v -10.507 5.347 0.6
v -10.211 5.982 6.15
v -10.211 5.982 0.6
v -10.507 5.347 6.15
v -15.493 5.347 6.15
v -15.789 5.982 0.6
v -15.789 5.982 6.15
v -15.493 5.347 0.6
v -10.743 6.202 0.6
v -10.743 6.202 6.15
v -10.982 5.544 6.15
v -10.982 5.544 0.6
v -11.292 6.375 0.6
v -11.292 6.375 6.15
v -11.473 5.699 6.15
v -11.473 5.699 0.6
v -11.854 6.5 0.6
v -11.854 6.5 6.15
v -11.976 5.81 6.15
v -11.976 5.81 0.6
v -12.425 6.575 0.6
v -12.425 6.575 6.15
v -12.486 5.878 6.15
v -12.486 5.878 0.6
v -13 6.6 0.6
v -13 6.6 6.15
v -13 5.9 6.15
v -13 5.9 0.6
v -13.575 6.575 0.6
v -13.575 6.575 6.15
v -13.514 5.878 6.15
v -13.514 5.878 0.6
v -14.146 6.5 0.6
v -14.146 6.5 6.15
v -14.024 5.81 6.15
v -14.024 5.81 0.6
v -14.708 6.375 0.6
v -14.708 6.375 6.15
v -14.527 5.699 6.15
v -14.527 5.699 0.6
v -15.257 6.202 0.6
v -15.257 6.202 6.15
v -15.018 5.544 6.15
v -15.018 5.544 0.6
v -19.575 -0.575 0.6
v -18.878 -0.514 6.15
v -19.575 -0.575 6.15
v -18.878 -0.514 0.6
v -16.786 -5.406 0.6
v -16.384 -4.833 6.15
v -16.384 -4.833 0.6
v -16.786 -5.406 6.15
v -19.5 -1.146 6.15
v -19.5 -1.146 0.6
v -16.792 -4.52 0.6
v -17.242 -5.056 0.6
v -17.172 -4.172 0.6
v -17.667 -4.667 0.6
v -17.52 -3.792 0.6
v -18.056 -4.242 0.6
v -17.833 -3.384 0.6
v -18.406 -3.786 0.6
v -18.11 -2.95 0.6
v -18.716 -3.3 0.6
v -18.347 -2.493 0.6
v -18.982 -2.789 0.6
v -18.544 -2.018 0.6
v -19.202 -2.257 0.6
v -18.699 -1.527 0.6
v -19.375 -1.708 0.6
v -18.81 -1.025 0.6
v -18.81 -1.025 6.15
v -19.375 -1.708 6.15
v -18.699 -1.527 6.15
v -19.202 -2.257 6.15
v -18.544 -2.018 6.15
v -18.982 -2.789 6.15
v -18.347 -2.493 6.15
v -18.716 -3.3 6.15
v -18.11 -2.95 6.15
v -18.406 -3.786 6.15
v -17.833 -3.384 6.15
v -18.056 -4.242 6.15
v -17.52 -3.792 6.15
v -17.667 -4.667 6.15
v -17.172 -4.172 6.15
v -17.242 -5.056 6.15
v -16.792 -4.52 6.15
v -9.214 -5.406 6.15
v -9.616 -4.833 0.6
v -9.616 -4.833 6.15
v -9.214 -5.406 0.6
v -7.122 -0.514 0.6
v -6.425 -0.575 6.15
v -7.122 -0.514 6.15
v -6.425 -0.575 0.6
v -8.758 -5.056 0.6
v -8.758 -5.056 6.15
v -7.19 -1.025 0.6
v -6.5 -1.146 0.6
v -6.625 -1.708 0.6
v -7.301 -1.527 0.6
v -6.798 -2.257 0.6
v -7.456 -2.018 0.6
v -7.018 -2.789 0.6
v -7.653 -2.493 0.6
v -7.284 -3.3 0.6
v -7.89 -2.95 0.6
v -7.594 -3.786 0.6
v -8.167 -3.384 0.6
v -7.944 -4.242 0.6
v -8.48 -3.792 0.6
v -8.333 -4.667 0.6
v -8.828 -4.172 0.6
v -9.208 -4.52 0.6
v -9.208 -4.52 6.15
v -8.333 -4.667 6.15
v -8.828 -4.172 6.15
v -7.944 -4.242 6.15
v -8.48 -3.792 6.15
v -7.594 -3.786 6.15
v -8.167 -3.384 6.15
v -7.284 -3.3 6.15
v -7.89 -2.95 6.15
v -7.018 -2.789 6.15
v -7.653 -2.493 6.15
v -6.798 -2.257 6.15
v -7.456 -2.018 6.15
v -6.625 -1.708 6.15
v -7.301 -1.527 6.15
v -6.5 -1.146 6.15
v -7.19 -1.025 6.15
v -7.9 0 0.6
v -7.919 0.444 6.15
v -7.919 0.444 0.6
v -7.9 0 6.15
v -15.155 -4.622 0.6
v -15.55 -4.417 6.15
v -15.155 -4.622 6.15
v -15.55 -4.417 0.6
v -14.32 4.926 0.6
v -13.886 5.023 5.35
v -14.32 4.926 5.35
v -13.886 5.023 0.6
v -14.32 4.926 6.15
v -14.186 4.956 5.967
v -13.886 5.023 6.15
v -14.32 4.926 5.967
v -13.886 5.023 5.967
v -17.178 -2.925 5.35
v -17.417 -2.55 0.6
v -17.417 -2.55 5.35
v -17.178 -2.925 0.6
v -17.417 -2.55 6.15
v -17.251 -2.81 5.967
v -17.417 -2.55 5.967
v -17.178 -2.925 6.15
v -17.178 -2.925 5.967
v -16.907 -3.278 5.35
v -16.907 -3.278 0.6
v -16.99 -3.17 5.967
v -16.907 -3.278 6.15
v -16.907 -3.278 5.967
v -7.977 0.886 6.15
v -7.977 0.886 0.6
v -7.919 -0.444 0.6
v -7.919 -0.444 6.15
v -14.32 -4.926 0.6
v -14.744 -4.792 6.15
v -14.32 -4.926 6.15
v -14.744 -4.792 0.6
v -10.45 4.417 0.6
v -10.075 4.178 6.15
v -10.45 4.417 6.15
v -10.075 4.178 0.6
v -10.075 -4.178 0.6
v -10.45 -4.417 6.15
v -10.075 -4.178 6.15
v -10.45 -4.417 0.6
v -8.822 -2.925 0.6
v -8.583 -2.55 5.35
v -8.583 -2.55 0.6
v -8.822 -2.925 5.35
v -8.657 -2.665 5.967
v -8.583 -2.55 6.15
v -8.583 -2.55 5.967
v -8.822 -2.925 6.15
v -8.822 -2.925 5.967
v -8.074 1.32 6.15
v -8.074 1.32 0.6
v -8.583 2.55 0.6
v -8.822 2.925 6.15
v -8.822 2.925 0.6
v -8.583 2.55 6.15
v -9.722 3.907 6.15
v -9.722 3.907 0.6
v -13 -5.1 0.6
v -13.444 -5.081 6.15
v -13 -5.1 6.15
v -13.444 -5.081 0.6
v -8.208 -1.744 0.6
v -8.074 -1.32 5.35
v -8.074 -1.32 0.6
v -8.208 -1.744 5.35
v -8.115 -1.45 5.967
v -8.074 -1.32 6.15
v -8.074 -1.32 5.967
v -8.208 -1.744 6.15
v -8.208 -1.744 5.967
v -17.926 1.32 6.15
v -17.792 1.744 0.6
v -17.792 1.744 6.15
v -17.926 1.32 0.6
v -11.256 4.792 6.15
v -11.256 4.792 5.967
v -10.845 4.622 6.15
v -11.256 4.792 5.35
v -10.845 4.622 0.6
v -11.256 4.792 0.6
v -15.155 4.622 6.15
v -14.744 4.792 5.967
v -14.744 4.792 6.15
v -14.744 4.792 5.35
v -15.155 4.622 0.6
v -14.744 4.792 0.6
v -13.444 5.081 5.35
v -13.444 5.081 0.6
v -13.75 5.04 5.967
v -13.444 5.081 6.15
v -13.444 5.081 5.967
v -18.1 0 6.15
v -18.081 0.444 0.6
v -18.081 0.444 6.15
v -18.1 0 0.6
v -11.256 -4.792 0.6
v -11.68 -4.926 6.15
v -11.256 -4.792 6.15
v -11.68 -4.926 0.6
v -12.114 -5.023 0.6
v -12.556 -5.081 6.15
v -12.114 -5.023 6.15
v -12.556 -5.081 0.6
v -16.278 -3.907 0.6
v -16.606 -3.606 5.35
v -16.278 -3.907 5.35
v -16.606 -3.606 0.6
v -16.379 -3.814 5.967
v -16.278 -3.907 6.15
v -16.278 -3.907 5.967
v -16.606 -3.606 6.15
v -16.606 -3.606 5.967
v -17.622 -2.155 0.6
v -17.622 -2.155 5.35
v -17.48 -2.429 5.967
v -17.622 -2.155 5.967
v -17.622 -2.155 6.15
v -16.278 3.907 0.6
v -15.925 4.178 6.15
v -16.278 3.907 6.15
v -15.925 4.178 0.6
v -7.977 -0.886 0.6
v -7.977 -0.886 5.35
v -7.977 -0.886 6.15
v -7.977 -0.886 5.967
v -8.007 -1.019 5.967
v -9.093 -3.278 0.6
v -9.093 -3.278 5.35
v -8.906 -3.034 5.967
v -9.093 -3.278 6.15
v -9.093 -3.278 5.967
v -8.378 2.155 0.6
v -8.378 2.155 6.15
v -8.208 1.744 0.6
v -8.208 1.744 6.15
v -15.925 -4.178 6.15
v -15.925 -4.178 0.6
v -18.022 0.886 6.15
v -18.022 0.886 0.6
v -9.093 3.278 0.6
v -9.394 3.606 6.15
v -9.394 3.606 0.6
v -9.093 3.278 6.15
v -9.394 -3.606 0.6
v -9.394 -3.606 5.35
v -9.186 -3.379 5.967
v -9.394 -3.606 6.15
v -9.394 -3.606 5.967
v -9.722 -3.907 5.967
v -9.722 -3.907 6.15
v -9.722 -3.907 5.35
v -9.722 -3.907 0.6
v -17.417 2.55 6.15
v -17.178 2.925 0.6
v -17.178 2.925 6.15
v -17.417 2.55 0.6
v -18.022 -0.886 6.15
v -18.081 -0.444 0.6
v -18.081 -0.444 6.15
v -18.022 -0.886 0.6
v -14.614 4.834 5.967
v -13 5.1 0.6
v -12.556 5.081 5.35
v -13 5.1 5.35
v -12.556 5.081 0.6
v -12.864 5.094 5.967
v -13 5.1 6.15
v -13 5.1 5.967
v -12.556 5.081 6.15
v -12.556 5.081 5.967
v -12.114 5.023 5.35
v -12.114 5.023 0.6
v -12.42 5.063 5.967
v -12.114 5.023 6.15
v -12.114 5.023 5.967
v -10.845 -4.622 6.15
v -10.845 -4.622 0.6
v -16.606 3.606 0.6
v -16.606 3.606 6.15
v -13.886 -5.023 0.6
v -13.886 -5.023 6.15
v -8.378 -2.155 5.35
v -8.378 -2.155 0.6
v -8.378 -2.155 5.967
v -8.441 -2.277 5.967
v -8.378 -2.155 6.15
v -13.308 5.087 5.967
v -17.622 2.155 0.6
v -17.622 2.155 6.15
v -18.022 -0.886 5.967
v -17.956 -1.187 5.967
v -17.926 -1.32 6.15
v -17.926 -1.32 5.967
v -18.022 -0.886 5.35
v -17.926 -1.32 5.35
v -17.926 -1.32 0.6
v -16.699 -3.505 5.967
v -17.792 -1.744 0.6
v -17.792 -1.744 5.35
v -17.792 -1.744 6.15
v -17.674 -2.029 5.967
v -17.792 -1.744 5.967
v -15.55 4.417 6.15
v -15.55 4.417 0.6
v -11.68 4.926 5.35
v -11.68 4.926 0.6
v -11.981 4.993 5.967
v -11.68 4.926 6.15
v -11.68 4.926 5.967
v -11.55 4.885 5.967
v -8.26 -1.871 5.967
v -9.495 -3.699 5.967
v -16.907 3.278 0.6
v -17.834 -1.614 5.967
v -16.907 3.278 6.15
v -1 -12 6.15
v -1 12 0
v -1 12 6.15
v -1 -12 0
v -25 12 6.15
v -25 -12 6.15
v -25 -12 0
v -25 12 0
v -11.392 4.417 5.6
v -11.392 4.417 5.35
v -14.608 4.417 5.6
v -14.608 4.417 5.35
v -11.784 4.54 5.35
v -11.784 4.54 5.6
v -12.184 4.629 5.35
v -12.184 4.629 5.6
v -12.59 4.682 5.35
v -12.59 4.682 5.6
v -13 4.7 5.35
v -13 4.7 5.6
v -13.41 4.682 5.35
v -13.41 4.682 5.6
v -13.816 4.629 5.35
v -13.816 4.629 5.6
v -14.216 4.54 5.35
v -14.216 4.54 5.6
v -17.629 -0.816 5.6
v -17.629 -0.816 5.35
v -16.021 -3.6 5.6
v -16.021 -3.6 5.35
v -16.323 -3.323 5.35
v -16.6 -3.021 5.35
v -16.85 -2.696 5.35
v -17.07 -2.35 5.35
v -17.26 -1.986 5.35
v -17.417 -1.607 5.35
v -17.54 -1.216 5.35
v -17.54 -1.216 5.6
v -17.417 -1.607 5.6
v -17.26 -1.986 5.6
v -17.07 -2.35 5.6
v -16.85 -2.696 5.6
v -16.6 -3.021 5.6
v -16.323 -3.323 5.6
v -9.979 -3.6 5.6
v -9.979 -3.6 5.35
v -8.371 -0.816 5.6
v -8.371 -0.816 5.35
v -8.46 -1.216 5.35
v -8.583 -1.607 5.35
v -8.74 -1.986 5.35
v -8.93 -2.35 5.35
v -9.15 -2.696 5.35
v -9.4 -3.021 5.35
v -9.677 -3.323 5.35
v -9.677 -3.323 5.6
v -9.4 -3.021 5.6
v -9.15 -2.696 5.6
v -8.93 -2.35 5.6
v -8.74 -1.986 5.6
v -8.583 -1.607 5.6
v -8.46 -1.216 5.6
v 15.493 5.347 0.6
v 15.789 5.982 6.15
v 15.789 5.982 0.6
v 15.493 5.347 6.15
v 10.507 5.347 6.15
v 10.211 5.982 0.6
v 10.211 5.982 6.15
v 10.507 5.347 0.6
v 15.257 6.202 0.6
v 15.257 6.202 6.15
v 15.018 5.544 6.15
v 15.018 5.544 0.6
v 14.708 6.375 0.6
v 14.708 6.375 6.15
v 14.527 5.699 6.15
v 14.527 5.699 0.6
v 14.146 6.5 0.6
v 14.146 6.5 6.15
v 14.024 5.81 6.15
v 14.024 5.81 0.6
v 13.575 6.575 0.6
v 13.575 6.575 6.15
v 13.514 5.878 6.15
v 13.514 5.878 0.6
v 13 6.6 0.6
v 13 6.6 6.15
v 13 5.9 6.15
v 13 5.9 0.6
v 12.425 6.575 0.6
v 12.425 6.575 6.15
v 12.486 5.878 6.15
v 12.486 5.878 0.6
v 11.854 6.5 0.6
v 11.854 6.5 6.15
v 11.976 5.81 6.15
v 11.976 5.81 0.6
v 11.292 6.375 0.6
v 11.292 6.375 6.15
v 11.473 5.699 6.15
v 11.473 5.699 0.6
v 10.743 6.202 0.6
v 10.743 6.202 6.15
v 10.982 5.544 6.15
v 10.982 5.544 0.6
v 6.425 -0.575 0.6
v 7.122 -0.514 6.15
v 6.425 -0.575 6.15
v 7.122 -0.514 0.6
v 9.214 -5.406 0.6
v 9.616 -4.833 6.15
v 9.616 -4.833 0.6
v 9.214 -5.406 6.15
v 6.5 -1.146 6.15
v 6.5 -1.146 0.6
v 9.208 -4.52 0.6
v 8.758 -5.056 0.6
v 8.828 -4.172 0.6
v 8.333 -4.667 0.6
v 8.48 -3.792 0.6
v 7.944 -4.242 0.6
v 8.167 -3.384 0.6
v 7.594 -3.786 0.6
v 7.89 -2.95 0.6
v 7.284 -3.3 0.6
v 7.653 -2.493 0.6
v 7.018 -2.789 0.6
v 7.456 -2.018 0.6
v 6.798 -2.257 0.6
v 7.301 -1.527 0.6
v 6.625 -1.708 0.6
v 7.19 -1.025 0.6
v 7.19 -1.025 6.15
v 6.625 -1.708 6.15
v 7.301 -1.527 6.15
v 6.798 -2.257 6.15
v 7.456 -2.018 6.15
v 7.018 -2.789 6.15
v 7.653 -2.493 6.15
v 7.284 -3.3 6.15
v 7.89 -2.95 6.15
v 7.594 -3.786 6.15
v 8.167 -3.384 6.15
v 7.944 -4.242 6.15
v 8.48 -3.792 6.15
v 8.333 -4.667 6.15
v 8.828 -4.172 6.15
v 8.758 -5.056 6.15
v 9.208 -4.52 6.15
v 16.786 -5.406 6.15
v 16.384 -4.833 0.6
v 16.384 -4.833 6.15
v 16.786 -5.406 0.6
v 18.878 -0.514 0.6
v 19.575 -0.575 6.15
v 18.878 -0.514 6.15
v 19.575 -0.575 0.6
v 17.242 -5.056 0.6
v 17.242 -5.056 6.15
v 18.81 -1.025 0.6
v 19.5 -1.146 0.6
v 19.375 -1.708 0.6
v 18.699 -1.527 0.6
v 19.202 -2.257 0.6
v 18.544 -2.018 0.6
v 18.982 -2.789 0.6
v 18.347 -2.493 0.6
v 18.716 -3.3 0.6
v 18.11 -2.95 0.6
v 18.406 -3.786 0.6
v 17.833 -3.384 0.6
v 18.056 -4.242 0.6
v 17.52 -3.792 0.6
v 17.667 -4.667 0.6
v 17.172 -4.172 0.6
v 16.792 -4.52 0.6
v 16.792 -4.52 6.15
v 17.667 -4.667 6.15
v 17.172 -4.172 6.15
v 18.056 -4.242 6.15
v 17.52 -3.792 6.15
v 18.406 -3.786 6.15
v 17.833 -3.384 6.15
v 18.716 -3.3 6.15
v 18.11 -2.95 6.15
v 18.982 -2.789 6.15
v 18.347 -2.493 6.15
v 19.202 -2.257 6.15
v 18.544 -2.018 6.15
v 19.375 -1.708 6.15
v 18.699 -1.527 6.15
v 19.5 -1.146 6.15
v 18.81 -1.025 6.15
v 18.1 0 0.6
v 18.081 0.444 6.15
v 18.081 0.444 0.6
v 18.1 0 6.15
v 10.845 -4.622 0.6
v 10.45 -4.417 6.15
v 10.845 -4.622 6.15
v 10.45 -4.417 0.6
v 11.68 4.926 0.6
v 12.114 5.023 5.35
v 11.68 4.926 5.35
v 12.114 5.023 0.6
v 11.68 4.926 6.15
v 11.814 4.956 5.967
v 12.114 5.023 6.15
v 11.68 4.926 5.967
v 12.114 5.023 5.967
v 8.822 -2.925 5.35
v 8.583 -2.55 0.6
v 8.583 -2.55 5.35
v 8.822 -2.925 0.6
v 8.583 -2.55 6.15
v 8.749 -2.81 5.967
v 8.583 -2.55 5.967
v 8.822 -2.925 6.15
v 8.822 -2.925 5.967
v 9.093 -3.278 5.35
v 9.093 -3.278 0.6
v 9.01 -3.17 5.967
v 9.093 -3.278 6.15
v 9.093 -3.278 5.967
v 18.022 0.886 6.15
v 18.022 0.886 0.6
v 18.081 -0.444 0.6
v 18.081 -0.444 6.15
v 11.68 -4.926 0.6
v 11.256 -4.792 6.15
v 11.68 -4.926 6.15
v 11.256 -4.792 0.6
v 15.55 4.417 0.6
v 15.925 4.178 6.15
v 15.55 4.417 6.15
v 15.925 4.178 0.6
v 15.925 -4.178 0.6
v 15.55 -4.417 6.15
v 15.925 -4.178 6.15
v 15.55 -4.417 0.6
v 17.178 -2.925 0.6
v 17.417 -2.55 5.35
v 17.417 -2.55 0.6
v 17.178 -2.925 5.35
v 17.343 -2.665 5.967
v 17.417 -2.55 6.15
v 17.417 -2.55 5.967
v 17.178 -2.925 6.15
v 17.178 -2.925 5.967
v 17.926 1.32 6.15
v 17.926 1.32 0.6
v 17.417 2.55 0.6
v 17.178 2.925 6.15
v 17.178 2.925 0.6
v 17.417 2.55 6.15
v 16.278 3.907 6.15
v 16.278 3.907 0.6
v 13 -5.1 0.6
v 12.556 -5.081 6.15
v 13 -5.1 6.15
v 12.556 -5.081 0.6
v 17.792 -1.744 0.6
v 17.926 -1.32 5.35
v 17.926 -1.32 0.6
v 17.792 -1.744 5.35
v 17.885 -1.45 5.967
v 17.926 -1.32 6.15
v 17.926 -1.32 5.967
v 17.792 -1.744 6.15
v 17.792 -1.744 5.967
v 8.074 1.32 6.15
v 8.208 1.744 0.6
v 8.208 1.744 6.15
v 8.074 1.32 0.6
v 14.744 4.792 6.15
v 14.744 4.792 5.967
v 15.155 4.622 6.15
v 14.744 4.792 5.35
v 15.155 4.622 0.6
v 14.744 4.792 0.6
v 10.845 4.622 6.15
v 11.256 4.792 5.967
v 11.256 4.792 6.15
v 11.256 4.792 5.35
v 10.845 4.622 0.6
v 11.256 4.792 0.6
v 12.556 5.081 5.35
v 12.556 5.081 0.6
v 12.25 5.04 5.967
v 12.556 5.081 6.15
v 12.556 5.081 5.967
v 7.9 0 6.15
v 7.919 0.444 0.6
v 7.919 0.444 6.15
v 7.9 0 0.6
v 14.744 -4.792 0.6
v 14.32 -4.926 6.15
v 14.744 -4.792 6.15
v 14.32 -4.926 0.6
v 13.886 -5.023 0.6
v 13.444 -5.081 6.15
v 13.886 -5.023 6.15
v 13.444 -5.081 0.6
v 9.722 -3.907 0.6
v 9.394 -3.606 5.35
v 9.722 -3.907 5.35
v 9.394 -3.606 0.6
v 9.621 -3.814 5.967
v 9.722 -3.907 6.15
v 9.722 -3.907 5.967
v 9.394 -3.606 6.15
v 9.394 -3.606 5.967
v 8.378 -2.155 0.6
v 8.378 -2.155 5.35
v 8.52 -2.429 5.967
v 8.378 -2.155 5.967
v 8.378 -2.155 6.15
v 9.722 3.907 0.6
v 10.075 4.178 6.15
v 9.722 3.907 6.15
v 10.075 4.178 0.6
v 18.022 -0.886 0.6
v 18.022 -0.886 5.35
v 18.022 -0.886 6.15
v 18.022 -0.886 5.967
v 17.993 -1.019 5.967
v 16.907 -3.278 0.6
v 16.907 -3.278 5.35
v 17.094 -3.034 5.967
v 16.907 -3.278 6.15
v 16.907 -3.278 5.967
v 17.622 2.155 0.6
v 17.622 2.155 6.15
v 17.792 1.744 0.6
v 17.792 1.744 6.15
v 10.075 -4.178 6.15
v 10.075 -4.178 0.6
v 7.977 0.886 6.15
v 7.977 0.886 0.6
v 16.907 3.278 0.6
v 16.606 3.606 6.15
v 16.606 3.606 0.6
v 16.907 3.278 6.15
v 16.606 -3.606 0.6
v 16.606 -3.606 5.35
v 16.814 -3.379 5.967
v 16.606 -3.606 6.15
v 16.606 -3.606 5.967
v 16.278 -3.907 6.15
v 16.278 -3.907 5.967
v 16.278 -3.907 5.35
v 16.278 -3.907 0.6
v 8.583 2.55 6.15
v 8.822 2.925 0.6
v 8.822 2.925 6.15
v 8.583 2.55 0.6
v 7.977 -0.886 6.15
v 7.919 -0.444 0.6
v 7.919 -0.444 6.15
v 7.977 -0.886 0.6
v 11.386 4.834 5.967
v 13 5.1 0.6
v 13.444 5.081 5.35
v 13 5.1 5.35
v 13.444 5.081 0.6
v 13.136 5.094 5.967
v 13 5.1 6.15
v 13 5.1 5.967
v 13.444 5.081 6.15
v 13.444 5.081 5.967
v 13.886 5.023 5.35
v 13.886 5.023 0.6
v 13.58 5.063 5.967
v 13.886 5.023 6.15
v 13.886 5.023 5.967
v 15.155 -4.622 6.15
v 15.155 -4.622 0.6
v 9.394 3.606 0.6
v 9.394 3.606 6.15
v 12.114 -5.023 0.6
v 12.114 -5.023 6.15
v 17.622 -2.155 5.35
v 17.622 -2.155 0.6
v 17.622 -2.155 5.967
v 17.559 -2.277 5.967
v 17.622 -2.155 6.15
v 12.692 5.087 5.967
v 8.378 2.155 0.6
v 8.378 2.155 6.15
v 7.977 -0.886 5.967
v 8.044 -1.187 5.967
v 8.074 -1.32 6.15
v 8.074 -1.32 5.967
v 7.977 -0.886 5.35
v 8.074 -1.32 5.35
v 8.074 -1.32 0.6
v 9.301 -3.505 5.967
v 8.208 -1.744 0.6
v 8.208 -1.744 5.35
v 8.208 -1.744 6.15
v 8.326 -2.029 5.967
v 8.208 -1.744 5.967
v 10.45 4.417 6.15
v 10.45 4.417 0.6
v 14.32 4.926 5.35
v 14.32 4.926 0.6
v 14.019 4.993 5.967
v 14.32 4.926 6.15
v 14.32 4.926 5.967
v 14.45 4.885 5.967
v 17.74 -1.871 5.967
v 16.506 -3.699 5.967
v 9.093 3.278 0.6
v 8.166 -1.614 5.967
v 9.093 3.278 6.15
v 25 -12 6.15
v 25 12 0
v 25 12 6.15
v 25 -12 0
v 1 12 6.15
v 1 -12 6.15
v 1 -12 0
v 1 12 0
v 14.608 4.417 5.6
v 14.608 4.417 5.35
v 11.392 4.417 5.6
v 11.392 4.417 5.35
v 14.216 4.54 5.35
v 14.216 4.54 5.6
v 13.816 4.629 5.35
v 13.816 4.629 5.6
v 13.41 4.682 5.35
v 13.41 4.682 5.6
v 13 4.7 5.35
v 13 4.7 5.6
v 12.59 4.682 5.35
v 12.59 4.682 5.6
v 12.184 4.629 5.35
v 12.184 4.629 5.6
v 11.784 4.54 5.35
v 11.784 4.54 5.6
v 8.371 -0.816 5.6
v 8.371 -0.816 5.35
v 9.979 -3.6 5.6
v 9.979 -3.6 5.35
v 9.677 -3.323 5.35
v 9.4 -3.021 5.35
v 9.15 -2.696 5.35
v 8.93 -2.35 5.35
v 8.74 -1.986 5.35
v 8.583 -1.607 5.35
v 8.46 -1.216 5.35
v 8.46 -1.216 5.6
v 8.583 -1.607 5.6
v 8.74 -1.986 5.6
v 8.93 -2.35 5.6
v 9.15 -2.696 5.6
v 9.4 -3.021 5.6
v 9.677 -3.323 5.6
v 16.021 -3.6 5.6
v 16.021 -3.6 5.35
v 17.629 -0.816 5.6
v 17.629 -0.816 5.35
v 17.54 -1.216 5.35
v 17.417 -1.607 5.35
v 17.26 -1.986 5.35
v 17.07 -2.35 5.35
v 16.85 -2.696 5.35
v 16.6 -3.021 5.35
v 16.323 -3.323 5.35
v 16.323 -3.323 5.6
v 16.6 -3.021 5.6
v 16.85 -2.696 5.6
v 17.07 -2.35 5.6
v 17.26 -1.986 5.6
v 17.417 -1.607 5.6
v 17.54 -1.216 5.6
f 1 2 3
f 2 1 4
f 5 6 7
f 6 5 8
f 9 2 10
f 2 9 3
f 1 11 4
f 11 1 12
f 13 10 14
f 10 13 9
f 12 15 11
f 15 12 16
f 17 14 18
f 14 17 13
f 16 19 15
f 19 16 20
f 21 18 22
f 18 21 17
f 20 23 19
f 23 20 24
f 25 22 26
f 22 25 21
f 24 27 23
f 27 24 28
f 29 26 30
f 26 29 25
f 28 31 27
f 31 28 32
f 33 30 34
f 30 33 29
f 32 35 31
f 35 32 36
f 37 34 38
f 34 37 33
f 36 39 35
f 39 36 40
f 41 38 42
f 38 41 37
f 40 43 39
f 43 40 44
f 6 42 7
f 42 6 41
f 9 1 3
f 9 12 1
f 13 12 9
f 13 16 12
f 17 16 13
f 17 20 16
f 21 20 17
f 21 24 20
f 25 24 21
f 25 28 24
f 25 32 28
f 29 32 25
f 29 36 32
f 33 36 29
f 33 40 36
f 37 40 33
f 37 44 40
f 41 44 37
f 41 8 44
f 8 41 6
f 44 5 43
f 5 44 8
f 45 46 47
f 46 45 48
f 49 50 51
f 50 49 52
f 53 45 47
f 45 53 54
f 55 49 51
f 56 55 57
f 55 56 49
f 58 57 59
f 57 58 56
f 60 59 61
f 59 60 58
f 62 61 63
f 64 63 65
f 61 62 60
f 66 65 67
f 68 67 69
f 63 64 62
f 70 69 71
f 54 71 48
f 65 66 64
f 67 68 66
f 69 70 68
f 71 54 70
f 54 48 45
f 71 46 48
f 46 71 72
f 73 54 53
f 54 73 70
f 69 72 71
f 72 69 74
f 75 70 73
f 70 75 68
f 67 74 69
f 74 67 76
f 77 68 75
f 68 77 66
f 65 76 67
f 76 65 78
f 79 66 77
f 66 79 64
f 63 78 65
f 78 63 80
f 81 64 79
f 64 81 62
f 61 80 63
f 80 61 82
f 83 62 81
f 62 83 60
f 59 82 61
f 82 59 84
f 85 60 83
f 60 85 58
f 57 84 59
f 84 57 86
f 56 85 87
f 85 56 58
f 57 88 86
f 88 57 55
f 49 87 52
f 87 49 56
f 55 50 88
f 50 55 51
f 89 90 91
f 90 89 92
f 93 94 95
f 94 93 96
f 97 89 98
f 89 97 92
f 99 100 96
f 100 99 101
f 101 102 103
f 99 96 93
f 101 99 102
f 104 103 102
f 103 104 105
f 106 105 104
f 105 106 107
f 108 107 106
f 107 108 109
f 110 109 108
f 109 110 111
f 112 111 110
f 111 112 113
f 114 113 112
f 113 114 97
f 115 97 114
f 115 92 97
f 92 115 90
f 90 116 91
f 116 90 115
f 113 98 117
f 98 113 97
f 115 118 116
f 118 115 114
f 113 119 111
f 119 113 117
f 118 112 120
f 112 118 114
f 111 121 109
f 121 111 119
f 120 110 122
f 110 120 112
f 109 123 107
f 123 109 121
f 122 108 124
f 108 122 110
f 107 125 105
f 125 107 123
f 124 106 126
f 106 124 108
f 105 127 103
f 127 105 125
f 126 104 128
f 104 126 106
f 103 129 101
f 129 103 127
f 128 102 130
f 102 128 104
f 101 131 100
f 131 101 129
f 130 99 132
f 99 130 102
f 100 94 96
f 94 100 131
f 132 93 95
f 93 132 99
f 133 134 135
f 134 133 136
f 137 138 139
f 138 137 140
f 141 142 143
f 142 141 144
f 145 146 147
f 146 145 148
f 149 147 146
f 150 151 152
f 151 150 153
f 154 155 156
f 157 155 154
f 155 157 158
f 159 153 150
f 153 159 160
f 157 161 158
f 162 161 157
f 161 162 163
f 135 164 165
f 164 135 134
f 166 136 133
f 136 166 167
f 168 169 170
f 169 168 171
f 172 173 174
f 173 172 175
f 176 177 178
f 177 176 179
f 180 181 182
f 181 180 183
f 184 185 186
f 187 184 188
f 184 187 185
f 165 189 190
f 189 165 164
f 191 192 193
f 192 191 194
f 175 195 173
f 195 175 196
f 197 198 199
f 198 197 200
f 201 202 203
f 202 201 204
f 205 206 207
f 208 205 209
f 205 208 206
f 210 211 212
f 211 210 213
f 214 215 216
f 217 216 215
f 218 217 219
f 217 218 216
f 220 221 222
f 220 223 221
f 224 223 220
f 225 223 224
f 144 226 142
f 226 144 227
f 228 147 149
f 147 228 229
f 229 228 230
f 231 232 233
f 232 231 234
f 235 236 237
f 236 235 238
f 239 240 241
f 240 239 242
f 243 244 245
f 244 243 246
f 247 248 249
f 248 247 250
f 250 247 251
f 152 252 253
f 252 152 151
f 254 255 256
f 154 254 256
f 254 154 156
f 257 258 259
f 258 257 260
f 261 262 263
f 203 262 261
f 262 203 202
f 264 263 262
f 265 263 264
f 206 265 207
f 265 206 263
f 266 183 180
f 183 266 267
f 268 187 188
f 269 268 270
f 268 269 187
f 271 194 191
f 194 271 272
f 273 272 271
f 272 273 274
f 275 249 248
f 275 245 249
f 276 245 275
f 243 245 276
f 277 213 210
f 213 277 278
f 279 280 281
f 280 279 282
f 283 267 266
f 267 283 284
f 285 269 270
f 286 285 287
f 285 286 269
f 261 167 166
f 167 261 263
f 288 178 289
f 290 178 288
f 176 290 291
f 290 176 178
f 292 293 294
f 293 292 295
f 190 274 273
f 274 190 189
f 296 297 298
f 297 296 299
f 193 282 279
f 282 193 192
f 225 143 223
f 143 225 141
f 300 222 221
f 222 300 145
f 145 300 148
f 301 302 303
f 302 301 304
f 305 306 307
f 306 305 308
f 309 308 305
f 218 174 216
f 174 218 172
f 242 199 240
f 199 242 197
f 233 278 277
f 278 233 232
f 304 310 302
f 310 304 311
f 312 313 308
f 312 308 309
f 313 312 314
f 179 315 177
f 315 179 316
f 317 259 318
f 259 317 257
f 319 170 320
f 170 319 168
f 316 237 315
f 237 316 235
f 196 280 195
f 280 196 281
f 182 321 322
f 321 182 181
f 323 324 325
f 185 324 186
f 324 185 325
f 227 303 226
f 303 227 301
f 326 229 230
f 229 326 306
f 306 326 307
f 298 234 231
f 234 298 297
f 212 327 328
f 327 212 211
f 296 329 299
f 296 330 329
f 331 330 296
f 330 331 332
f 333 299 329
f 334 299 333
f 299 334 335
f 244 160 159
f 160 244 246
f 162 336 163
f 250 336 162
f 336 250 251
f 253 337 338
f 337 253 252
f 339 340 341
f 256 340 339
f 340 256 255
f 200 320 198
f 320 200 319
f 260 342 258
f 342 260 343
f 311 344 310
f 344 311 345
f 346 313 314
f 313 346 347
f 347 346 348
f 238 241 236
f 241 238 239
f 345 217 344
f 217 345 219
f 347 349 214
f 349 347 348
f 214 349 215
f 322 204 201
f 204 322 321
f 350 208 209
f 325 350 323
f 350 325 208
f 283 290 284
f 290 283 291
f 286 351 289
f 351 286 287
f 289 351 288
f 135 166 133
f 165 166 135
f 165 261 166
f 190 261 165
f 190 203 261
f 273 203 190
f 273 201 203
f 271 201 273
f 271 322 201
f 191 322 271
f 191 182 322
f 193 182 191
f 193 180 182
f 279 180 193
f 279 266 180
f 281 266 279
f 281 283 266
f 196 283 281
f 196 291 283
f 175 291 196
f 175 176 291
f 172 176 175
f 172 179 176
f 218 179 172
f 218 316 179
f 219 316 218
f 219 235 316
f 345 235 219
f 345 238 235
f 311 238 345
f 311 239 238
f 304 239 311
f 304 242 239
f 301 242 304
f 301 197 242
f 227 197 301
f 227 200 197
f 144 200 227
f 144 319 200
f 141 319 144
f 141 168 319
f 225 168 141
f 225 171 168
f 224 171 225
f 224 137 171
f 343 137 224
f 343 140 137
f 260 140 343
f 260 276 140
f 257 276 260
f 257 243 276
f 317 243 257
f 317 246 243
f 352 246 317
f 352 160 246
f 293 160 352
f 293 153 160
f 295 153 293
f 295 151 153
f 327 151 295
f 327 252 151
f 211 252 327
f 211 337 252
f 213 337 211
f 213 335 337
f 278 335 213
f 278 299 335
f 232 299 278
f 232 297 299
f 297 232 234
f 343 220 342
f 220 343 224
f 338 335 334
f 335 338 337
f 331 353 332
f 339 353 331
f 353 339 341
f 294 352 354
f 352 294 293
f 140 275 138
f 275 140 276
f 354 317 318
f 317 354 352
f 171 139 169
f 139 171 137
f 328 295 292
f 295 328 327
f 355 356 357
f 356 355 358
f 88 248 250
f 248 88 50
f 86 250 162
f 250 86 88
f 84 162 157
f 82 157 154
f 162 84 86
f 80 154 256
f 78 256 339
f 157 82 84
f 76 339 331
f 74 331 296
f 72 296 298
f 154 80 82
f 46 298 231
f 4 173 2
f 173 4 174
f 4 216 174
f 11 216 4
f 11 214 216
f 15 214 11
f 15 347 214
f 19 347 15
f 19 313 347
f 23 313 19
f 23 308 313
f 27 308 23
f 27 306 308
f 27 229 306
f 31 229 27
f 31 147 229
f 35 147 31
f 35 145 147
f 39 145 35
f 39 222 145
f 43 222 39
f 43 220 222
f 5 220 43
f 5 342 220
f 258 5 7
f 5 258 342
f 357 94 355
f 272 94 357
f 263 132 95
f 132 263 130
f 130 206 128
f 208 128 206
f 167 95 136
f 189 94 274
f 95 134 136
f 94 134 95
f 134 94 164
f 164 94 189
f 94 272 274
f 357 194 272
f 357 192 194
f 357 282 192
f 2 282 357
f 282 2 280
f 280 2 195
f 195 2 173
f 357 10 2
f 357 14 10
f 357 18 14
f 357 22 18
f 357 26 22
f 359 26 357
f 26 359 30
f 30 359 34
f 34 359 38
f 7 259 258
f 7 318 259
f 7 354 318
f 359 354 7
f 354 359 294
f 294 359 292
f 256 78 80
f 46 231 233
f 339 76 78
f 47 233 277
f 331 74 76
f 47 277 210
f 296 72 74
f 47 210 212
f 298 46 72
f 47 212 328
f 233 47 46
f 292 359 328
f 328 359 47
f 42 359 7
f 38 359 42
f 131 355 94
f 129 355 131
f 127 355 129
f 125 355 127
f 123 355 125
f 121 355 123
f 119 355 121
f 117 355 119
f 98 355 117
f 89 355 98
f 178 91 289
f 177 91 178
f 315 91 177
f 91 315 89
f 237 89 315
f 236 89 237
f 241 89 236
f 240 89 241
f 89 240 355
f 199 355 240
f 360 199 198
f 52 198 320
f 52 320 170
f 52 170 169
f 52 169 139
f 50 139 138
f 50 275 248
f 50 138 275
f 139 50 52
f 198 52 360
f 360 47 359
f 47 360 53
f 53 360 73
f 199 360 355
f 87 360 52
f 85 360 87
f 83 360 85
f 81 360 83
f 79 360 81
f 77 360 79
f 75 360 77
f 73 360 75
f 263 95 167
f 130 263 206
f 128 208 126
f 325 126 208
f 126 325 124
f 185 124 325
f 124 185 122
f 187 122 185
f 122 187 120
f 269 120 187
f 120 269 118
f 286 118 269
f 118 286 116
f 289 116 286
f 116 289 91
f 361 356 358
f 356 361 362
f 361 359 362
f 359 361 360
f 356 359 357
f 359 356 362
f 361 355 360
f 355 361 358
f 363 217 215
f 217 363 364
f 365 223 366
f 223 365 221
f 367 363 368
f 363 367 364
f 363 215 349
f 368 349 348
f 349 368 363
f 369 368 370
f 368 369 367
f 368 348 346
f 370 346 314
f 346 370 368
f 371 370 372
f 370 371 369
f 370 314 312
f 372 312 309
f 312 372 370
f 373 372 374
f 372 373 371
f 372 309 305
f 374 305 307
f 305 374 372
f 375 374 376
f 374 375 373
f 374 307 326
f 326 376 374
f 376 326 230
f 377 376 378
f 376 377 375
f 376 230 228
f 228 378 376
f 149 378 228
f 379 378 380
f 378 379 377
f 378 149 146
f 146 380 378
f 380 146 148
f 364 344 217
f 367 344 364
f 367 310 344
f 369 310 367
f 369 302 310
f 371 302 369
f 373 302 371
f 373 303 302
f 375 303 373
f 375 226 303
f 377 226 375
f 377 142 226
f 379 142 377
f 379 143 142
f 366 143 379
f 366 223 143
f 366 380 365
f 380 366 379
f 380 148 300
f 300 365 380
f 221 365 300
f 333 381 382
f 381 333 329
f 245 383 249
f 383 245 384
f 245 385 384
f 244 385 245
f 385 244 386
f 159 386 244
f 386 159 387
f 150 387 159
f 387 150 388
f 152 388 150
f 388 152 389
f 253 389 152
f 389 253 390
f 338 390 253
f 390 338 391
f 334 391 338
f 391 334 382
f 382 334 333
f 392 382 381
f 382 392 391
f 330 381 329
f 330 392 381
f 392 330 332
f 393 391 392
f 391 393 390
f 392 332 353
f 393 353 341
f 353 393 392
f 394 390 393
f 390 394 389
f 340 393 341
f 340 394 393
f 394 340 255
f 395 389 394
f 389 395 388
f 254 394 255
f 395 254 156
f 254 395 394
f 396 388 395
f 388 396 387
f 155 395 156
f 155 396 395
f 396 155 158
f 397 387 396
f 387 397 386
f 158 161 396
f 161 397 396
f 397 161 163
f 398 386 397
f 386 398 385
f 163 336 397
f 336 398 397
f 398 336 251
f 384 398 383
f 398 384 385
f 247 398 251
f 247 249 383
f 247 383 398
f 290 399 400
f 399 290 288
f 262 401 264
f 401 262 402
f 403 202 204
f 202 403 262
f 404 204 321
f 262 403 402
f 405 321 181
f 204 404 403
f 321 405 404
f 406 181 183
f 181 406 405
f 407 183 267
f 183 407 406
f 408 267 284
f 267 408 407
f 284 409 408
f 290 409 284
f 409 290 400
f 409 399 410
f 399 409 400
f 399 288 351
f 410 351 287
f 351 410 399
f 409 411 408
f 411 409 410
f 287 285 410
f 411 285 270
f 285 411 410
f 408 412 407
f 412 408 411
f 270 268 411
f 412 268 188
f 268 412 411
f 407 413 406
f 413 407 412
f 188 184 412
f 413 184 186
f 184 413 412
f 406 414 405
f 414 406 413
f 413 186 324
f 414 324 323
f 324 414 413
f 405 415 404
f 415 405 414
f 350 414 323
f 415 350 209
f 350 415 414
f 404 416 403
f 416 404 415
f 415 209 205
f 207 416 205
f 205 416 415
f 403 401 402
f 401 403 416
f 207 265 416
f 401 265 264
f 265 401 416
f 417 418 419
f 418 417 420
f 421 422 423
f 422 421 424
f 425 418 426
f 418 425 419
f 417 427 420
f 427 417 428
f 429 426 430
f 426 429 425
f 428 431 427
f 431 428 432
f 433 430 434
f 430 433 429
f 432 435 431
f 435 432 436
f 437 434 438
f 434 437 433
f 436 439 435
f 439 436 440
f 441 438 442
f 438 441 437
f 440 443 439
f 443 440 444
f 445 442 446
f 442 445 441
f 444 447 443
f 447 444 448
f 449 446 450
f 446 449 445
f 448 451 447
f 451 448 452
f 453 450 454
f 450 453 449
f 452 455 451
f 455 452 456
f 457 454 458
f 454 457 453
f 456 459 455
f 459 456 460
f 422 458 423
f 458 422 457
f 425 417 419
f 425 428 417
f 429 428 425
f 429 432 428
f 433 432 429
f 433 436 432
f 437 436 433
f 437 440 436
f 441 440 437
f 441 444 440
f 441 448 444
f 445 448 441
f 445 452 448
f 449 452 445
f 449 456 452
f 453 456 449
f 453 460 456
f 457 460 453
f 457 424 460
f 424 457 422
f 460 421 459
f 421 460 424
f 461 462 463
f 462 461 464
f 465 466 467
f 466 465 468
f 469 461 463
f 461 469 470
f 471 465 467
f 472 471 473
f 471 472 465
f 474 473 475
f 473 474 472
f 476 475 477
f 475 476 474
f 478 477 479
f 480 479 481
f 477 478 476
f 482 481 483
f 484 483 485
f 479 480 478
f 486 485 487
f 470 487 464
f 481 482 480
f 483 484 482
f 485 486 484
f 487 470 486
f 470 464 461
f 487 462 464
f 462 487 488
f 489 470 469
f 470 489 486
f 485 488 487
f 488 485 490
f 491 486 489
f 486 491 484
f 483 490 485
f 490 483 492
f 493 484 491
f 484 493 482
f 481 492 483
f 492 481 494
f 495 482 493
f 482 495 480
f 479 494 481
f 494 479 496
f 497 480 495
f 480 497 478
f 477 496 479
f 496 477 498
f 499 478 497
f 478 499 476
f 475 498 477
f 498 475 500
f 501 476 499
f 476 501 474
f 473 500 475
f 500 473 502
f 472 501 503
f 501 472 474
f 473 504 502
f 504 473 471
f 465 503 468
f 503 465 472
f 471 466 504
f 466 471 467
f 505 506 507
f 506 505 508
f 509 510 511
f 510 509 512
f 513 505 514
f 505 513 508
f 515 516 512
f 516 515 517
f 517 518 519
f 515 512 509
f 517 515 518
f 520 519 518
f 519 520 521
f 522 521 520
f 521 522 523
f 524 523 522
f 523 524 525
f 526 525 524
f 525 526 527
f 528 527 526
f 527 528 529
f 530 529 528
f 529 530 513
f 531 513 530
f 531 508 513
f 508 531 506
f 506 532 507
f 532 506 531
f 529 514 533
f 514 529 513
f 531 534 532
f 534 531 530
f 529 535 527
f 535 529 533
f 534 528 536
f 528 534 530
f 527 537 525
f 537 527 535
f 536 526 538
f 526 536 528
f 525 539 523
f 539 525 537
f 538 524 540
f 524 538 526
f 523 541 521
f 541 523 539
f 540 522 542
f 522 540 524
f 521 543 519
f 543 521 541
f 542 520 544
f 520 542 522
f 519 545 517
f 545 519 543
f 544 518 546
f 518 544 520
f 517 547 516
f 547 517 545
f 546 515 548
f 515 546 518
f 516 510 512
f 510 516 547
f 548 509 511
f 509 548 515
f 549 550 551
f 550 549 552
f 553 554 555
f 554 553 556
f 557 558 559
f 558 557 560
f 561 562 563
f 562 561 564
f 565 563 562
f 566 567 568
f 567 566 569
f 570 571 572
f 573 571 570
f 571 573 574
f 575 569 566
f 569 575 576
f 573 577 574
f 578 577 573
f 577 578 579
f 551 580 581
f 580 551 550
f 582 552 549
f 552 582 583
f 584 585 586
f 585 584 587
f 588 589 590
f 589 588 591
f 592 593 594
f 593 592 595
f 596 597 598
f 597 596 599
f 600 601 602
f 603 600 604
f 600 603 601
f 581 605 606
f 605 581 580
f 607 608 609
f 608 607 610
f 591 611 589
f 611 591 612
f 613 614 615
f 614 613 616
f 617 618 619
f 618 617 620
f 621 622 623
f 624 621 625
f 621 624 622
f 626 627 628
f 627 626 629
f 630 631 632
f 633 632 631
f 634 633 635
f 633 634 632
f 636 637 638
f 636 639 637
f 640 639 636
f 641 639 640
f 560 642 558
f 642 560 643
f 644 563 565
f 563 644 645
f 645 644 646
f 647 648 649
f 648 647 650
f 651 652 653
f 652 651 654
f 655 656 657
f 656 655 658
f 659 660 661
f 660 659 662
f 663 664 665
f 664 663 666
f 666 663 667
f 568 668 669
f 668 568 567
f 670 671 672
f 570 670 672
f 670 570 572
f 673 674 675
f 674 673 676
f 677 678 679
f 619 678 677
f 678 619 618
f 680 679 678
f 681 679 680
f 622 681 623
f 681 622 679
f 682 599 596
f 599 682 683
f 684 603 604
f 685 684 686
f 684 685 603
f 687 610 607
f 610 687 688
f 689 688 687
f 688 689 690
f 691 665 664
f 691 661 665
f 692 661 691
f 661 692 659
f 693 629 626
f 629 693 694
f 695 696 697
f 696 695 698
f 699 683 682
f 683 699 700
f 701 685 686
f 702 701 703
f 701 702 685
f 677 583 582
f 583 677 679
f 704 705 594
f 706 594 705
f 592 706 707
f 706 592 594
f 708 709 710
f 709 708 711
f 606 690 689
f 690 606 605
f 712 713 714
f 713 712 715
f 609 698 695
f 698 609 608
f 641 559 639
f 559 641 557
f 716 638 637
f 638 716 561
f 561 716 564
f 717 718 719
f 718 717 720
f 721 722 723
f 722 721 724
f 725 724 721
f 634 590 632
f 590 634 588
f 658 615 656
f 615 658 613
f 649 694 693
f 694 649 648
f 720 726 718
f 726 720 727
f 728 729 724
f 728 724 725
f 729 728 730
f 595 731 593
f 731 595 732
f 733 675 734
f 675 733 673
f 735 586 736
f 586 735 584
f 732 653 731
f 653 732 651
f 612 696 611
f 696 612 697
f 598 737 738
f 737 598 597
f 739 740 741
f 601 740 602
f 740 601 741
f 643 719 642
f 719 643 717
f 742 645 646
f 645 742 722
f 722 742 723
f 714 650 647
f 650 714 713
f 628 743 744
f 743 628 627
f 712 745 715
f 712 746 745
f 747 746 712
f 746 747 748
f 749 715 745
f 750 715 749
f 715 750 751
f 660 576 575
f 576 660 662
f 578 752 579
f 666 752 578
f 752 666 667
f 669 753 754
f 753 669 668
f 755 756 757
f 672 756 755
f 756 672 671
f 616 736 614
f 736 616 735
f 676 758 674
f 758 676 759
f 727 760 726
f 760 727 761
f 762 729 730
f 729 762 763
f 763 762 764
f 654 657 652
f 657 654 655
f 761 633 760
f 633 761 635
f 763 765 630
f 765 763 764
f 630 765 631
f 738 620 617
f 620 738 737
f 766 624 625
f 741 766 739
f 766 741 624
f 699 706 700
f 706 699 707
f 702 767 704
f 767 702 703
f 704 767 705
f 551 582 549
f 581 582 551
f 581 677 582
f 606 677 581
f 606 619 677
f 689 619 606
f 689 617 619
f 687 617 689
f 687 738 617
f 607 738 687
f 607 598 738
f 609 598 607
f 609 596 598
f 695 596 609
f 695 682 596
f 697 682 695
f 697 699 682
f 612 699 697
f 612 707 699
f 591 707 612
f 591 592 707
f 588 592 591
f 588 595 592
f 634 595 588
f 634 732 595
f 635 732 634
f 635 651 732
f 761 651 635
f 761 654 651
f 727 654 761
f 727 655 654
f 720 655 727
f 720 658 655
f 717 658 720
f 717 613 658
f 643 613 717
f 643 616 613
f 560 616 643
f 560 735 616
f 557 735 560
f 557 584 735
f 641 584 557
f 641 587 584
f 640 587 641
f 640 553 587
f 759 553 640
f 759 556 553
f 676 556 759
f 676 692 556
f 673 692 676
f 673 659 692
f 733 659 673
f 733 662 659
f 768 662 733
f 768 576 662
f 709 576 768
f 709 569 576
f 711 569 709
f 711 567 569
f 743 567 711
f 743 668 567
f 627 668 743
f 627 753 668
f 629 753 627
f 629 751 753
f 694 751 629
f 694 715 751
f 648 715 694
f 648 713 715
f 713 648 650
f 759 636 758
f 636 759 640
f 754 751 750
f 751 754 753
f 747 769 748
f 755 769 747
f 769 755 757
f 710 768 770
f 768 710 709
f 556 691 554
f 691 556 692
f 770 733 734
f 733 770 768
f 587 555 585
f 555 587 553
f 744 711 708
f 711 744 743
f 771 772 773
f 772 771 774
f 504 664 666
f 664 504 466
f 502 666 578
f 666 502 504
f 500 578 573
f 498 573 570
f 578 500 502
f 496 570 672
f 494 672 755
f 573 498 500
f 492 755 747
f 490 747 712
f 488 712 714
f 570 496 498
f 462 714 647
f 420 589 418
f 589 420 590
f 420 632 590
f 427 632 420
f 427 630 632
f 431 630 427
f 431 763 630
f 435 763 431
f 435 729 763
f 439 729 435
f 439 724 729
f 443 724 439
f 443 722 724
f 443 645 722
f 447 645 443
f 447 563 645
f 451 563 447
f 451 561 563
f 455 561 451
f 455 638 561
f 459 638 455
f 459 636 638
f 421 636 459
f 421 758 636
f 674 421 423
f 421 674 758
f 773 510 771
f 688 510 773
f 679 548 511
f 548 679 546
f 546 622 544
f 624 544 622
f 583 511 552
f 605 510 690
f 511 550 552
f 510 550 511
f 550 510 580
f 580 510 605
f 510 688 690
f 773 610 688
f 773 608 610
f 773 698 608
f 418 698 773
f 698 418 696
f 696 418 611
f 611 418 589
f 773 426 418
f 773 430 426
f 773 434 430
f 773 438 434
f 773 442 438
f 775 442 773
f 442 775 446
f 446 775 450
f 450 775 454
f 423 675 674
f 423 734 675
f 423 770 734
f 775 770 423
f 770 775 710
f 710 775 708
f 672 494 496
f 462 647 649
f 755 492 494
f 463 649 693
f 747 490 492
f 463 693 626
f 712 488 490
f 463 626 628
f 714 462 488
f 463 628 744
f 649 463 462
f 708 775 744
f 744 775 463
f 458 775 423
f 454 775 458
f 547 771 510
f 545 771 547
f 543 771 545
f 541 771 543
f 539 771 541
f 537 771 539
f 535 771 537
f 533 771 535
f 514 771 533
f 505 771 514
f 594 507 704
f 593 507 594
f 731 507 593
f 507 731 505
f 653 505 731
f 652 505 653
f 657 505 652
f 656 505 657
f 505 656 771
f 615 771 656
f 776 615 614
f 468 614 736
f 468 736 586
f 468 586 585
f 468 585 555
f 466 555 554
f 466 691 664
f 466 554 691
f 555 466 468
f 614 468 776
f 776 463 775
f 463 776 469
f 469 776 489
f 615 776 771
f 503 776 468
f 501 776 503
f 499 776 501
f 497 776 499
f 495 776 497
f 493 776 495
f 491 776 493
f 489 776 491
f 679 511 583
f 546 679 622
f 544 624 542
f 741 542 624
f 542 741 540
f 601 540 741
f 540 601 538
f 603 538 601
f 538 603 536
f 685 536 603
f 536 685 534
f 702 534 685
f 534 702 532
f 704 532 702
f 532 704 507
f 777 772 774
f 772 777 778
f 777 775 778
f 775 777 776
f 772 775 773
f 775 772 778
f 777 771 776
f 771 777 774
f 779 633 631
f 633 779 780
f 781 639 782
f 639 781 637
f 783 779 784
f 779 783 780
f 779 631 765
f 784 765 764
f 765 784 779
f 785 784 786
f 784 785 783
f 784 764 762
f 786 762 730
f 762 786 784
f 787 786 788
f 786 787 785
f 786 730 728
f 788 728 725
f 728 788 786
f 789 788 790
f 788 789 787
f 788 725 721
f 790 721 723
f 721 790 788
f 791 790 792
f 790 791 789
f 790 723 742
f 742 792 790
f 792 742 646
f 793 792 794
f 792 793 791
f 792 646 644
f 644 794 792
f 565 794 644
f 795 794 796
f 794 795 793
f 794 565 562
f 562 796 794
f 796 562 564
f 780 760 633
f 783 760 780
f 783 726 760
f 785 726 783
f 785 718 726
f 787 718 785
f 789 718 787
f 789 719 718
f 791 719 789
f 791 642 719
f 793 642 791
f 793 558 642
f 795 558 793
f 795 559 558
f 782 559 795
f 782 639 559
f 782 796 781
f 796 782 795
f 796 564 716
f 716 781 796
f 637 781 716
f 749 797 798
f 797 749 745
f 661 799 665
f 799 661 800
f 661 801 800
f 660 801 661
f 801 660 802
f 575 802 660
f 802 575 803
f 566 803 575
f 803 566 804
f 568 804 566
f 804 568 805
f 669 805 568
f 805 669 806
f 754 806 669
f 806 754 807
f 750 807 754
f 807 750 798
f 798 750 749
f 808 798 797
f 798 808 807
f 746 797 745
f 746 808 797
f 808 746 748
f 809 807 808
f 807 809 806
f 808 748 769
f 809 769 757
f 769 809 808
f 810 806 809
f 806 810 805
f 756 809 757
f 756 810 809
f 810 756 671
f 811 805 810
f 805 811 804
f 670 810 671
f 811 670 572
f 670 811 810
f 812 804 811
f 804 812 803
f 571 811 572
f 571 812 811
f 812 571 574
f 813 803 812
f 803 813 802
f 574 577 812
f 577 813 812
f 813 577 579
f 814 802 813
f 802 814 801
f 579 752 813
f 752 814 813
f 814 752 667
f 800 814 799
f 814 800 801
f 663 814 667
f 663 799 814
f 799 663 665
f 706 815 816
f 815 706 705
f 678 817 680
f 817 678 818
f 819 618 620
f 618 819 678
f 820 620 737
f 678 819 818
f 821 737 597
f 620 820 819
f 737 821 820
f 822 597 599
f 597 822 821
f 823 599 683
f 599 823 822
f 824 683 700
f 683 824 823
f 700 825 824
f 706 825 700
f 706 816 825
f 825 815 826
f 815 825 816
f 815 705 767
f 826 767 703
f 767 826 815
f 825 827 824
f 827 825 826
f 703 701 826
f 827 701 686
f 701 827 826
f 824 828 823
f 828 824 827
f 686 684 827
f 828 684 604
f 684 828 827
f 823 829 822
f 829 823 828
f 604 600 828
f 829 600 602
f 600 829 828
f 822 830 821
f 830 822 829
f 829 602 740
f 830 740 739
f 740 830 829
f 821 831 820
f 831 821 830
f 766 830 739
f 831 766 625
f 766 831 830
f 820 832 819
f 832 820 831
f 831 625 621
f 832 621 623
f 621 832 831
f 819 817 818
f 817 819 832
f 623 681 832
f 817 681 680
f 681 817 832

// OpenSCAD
// Xteink X3 fridge-magnet ticker case  (v2.2: 6 snap-in N52 magnets, charging notch)
// Slide the device in from the top, bottom edge first; gravity keeps it seated on a fridge.
// The front lips only touch the four corners, the sides are open between the corner posts
// (side buttons), the bottom centre is open (front rocker bars) and a notch in the back
// plate exposes the magnetic pogo charging contacts. Units: mm.
// Device (manufacturer spec): 97.6 x 63.7 x 5.1

dev_h = 97.6; dev_w = 63.7; dev_t = 5.1;
clr    = 0.3;     // clearance per side - tune after a test print
wall   = 2.2;
lip    = 1.6;     // thickness of the front corner lips
lip_o  = 3.0;     // how far the lips overlap the device face
R      = 9;       // outer corner radius
bev    = 2.0;     // outer edge fillet radius
cav_r  = 2.0;     // cavity corner radius (device corners must be >= this)
tab_l  = 18;      // length of each corner post / lip along the side
bot_win = 52;   // open width at the bottom edge: front rocker bars span about +-21 mm
// magnets: 10 x 3 mm round neodymium, inserted from the cavity side before the
// device goes in. A thin skin keeps them hidden and protects the fridge paint.
mag_d = 10.2; mag_t = 3.1; skin = 0.6; mag_x = 22; mag_rows = [-24, 3, 30]; // 2 columns x 3 rows (y offsets from centre; bottom row raised to clear the charging notch)
// snap-in catches: 3 flexing tongues per pocket hold the magnet without glue.
// Press the magnet in from the cavity side; the ramped lips click over its edge.
catch_prot = 0.4;   // lip reach into the pocket; overlap on a 10.0 mm magnet = 0.3 mm (= tongue deflection)
tongue_t   = 0.8;   // tongue thickness (2 perimeters)
slot_w     = 0.7;   // relief slot behind each tongue, lets it flex outward
sector     = 40;    // angular width of each tongue/lip, degrees
lip_h      = 0.8;   // lip height
catch_extra = 1.5;  // extra tongue length above the magnet (longer tongue = lower strain)
// charging notch: the X3's 4-pin magnetic pogo connector sits on the back, centred, about
// 8 mm up from the bottom edge (estimated from photos of other X3 cases). The charging plug
// (~20 mm block + ~5 mm strain relief, ~5.5 mm thick, cable exits sideways) sits fully inside
// this notch; the notch is open at the bottom edge so the cable can bend down and out.
// The plug must be thinner than `back` or it will lift the case off the fridge.
pogo_on = true; pogo_w = 36; pogo_h = 17;   // notch width, height from the outer bottom edge
$fn = 72;

zl = skin + mag_t + 0.15 + catch_extra;   // underside of the catch lips (magnet sits below)
back = zl + lip_h;          // back plate thickness

// Magnet snap test coupon: print this first (PETG), press two magnets in from the top.
module pocket_cut() { translate([0,0,skin]) {
  cylinder(d=mag_d, h=back-skin+0.01);
  for (a=[90,210,330]) rotate([0,0,a-sector/2-5]) rotate_extrude(angle=sector+10, $fn=72)
    translate([mag_d/2+tongue_t, 0]) square([slot_w, back-skin+0.01]);
}}
module lips() {
  for (a=[90,210,330]) rotate([0,0,a-sector/2]) rotate_extrude(angle=sector, $fn=72)
    polygon([[mag_d/2+0.2, zl], [mag_d/2-catch_prot, zl], [mag_d/2-catch_prot, zl+0.25], [mag_d/2+0.2, back]]);
}
for (x=[-1,1]) translate([x*13, 0, 0]) {
  difference() { translate([-12,-12,0]) cube([24,24,back]); pocket_cut(); }
  lips();
}
